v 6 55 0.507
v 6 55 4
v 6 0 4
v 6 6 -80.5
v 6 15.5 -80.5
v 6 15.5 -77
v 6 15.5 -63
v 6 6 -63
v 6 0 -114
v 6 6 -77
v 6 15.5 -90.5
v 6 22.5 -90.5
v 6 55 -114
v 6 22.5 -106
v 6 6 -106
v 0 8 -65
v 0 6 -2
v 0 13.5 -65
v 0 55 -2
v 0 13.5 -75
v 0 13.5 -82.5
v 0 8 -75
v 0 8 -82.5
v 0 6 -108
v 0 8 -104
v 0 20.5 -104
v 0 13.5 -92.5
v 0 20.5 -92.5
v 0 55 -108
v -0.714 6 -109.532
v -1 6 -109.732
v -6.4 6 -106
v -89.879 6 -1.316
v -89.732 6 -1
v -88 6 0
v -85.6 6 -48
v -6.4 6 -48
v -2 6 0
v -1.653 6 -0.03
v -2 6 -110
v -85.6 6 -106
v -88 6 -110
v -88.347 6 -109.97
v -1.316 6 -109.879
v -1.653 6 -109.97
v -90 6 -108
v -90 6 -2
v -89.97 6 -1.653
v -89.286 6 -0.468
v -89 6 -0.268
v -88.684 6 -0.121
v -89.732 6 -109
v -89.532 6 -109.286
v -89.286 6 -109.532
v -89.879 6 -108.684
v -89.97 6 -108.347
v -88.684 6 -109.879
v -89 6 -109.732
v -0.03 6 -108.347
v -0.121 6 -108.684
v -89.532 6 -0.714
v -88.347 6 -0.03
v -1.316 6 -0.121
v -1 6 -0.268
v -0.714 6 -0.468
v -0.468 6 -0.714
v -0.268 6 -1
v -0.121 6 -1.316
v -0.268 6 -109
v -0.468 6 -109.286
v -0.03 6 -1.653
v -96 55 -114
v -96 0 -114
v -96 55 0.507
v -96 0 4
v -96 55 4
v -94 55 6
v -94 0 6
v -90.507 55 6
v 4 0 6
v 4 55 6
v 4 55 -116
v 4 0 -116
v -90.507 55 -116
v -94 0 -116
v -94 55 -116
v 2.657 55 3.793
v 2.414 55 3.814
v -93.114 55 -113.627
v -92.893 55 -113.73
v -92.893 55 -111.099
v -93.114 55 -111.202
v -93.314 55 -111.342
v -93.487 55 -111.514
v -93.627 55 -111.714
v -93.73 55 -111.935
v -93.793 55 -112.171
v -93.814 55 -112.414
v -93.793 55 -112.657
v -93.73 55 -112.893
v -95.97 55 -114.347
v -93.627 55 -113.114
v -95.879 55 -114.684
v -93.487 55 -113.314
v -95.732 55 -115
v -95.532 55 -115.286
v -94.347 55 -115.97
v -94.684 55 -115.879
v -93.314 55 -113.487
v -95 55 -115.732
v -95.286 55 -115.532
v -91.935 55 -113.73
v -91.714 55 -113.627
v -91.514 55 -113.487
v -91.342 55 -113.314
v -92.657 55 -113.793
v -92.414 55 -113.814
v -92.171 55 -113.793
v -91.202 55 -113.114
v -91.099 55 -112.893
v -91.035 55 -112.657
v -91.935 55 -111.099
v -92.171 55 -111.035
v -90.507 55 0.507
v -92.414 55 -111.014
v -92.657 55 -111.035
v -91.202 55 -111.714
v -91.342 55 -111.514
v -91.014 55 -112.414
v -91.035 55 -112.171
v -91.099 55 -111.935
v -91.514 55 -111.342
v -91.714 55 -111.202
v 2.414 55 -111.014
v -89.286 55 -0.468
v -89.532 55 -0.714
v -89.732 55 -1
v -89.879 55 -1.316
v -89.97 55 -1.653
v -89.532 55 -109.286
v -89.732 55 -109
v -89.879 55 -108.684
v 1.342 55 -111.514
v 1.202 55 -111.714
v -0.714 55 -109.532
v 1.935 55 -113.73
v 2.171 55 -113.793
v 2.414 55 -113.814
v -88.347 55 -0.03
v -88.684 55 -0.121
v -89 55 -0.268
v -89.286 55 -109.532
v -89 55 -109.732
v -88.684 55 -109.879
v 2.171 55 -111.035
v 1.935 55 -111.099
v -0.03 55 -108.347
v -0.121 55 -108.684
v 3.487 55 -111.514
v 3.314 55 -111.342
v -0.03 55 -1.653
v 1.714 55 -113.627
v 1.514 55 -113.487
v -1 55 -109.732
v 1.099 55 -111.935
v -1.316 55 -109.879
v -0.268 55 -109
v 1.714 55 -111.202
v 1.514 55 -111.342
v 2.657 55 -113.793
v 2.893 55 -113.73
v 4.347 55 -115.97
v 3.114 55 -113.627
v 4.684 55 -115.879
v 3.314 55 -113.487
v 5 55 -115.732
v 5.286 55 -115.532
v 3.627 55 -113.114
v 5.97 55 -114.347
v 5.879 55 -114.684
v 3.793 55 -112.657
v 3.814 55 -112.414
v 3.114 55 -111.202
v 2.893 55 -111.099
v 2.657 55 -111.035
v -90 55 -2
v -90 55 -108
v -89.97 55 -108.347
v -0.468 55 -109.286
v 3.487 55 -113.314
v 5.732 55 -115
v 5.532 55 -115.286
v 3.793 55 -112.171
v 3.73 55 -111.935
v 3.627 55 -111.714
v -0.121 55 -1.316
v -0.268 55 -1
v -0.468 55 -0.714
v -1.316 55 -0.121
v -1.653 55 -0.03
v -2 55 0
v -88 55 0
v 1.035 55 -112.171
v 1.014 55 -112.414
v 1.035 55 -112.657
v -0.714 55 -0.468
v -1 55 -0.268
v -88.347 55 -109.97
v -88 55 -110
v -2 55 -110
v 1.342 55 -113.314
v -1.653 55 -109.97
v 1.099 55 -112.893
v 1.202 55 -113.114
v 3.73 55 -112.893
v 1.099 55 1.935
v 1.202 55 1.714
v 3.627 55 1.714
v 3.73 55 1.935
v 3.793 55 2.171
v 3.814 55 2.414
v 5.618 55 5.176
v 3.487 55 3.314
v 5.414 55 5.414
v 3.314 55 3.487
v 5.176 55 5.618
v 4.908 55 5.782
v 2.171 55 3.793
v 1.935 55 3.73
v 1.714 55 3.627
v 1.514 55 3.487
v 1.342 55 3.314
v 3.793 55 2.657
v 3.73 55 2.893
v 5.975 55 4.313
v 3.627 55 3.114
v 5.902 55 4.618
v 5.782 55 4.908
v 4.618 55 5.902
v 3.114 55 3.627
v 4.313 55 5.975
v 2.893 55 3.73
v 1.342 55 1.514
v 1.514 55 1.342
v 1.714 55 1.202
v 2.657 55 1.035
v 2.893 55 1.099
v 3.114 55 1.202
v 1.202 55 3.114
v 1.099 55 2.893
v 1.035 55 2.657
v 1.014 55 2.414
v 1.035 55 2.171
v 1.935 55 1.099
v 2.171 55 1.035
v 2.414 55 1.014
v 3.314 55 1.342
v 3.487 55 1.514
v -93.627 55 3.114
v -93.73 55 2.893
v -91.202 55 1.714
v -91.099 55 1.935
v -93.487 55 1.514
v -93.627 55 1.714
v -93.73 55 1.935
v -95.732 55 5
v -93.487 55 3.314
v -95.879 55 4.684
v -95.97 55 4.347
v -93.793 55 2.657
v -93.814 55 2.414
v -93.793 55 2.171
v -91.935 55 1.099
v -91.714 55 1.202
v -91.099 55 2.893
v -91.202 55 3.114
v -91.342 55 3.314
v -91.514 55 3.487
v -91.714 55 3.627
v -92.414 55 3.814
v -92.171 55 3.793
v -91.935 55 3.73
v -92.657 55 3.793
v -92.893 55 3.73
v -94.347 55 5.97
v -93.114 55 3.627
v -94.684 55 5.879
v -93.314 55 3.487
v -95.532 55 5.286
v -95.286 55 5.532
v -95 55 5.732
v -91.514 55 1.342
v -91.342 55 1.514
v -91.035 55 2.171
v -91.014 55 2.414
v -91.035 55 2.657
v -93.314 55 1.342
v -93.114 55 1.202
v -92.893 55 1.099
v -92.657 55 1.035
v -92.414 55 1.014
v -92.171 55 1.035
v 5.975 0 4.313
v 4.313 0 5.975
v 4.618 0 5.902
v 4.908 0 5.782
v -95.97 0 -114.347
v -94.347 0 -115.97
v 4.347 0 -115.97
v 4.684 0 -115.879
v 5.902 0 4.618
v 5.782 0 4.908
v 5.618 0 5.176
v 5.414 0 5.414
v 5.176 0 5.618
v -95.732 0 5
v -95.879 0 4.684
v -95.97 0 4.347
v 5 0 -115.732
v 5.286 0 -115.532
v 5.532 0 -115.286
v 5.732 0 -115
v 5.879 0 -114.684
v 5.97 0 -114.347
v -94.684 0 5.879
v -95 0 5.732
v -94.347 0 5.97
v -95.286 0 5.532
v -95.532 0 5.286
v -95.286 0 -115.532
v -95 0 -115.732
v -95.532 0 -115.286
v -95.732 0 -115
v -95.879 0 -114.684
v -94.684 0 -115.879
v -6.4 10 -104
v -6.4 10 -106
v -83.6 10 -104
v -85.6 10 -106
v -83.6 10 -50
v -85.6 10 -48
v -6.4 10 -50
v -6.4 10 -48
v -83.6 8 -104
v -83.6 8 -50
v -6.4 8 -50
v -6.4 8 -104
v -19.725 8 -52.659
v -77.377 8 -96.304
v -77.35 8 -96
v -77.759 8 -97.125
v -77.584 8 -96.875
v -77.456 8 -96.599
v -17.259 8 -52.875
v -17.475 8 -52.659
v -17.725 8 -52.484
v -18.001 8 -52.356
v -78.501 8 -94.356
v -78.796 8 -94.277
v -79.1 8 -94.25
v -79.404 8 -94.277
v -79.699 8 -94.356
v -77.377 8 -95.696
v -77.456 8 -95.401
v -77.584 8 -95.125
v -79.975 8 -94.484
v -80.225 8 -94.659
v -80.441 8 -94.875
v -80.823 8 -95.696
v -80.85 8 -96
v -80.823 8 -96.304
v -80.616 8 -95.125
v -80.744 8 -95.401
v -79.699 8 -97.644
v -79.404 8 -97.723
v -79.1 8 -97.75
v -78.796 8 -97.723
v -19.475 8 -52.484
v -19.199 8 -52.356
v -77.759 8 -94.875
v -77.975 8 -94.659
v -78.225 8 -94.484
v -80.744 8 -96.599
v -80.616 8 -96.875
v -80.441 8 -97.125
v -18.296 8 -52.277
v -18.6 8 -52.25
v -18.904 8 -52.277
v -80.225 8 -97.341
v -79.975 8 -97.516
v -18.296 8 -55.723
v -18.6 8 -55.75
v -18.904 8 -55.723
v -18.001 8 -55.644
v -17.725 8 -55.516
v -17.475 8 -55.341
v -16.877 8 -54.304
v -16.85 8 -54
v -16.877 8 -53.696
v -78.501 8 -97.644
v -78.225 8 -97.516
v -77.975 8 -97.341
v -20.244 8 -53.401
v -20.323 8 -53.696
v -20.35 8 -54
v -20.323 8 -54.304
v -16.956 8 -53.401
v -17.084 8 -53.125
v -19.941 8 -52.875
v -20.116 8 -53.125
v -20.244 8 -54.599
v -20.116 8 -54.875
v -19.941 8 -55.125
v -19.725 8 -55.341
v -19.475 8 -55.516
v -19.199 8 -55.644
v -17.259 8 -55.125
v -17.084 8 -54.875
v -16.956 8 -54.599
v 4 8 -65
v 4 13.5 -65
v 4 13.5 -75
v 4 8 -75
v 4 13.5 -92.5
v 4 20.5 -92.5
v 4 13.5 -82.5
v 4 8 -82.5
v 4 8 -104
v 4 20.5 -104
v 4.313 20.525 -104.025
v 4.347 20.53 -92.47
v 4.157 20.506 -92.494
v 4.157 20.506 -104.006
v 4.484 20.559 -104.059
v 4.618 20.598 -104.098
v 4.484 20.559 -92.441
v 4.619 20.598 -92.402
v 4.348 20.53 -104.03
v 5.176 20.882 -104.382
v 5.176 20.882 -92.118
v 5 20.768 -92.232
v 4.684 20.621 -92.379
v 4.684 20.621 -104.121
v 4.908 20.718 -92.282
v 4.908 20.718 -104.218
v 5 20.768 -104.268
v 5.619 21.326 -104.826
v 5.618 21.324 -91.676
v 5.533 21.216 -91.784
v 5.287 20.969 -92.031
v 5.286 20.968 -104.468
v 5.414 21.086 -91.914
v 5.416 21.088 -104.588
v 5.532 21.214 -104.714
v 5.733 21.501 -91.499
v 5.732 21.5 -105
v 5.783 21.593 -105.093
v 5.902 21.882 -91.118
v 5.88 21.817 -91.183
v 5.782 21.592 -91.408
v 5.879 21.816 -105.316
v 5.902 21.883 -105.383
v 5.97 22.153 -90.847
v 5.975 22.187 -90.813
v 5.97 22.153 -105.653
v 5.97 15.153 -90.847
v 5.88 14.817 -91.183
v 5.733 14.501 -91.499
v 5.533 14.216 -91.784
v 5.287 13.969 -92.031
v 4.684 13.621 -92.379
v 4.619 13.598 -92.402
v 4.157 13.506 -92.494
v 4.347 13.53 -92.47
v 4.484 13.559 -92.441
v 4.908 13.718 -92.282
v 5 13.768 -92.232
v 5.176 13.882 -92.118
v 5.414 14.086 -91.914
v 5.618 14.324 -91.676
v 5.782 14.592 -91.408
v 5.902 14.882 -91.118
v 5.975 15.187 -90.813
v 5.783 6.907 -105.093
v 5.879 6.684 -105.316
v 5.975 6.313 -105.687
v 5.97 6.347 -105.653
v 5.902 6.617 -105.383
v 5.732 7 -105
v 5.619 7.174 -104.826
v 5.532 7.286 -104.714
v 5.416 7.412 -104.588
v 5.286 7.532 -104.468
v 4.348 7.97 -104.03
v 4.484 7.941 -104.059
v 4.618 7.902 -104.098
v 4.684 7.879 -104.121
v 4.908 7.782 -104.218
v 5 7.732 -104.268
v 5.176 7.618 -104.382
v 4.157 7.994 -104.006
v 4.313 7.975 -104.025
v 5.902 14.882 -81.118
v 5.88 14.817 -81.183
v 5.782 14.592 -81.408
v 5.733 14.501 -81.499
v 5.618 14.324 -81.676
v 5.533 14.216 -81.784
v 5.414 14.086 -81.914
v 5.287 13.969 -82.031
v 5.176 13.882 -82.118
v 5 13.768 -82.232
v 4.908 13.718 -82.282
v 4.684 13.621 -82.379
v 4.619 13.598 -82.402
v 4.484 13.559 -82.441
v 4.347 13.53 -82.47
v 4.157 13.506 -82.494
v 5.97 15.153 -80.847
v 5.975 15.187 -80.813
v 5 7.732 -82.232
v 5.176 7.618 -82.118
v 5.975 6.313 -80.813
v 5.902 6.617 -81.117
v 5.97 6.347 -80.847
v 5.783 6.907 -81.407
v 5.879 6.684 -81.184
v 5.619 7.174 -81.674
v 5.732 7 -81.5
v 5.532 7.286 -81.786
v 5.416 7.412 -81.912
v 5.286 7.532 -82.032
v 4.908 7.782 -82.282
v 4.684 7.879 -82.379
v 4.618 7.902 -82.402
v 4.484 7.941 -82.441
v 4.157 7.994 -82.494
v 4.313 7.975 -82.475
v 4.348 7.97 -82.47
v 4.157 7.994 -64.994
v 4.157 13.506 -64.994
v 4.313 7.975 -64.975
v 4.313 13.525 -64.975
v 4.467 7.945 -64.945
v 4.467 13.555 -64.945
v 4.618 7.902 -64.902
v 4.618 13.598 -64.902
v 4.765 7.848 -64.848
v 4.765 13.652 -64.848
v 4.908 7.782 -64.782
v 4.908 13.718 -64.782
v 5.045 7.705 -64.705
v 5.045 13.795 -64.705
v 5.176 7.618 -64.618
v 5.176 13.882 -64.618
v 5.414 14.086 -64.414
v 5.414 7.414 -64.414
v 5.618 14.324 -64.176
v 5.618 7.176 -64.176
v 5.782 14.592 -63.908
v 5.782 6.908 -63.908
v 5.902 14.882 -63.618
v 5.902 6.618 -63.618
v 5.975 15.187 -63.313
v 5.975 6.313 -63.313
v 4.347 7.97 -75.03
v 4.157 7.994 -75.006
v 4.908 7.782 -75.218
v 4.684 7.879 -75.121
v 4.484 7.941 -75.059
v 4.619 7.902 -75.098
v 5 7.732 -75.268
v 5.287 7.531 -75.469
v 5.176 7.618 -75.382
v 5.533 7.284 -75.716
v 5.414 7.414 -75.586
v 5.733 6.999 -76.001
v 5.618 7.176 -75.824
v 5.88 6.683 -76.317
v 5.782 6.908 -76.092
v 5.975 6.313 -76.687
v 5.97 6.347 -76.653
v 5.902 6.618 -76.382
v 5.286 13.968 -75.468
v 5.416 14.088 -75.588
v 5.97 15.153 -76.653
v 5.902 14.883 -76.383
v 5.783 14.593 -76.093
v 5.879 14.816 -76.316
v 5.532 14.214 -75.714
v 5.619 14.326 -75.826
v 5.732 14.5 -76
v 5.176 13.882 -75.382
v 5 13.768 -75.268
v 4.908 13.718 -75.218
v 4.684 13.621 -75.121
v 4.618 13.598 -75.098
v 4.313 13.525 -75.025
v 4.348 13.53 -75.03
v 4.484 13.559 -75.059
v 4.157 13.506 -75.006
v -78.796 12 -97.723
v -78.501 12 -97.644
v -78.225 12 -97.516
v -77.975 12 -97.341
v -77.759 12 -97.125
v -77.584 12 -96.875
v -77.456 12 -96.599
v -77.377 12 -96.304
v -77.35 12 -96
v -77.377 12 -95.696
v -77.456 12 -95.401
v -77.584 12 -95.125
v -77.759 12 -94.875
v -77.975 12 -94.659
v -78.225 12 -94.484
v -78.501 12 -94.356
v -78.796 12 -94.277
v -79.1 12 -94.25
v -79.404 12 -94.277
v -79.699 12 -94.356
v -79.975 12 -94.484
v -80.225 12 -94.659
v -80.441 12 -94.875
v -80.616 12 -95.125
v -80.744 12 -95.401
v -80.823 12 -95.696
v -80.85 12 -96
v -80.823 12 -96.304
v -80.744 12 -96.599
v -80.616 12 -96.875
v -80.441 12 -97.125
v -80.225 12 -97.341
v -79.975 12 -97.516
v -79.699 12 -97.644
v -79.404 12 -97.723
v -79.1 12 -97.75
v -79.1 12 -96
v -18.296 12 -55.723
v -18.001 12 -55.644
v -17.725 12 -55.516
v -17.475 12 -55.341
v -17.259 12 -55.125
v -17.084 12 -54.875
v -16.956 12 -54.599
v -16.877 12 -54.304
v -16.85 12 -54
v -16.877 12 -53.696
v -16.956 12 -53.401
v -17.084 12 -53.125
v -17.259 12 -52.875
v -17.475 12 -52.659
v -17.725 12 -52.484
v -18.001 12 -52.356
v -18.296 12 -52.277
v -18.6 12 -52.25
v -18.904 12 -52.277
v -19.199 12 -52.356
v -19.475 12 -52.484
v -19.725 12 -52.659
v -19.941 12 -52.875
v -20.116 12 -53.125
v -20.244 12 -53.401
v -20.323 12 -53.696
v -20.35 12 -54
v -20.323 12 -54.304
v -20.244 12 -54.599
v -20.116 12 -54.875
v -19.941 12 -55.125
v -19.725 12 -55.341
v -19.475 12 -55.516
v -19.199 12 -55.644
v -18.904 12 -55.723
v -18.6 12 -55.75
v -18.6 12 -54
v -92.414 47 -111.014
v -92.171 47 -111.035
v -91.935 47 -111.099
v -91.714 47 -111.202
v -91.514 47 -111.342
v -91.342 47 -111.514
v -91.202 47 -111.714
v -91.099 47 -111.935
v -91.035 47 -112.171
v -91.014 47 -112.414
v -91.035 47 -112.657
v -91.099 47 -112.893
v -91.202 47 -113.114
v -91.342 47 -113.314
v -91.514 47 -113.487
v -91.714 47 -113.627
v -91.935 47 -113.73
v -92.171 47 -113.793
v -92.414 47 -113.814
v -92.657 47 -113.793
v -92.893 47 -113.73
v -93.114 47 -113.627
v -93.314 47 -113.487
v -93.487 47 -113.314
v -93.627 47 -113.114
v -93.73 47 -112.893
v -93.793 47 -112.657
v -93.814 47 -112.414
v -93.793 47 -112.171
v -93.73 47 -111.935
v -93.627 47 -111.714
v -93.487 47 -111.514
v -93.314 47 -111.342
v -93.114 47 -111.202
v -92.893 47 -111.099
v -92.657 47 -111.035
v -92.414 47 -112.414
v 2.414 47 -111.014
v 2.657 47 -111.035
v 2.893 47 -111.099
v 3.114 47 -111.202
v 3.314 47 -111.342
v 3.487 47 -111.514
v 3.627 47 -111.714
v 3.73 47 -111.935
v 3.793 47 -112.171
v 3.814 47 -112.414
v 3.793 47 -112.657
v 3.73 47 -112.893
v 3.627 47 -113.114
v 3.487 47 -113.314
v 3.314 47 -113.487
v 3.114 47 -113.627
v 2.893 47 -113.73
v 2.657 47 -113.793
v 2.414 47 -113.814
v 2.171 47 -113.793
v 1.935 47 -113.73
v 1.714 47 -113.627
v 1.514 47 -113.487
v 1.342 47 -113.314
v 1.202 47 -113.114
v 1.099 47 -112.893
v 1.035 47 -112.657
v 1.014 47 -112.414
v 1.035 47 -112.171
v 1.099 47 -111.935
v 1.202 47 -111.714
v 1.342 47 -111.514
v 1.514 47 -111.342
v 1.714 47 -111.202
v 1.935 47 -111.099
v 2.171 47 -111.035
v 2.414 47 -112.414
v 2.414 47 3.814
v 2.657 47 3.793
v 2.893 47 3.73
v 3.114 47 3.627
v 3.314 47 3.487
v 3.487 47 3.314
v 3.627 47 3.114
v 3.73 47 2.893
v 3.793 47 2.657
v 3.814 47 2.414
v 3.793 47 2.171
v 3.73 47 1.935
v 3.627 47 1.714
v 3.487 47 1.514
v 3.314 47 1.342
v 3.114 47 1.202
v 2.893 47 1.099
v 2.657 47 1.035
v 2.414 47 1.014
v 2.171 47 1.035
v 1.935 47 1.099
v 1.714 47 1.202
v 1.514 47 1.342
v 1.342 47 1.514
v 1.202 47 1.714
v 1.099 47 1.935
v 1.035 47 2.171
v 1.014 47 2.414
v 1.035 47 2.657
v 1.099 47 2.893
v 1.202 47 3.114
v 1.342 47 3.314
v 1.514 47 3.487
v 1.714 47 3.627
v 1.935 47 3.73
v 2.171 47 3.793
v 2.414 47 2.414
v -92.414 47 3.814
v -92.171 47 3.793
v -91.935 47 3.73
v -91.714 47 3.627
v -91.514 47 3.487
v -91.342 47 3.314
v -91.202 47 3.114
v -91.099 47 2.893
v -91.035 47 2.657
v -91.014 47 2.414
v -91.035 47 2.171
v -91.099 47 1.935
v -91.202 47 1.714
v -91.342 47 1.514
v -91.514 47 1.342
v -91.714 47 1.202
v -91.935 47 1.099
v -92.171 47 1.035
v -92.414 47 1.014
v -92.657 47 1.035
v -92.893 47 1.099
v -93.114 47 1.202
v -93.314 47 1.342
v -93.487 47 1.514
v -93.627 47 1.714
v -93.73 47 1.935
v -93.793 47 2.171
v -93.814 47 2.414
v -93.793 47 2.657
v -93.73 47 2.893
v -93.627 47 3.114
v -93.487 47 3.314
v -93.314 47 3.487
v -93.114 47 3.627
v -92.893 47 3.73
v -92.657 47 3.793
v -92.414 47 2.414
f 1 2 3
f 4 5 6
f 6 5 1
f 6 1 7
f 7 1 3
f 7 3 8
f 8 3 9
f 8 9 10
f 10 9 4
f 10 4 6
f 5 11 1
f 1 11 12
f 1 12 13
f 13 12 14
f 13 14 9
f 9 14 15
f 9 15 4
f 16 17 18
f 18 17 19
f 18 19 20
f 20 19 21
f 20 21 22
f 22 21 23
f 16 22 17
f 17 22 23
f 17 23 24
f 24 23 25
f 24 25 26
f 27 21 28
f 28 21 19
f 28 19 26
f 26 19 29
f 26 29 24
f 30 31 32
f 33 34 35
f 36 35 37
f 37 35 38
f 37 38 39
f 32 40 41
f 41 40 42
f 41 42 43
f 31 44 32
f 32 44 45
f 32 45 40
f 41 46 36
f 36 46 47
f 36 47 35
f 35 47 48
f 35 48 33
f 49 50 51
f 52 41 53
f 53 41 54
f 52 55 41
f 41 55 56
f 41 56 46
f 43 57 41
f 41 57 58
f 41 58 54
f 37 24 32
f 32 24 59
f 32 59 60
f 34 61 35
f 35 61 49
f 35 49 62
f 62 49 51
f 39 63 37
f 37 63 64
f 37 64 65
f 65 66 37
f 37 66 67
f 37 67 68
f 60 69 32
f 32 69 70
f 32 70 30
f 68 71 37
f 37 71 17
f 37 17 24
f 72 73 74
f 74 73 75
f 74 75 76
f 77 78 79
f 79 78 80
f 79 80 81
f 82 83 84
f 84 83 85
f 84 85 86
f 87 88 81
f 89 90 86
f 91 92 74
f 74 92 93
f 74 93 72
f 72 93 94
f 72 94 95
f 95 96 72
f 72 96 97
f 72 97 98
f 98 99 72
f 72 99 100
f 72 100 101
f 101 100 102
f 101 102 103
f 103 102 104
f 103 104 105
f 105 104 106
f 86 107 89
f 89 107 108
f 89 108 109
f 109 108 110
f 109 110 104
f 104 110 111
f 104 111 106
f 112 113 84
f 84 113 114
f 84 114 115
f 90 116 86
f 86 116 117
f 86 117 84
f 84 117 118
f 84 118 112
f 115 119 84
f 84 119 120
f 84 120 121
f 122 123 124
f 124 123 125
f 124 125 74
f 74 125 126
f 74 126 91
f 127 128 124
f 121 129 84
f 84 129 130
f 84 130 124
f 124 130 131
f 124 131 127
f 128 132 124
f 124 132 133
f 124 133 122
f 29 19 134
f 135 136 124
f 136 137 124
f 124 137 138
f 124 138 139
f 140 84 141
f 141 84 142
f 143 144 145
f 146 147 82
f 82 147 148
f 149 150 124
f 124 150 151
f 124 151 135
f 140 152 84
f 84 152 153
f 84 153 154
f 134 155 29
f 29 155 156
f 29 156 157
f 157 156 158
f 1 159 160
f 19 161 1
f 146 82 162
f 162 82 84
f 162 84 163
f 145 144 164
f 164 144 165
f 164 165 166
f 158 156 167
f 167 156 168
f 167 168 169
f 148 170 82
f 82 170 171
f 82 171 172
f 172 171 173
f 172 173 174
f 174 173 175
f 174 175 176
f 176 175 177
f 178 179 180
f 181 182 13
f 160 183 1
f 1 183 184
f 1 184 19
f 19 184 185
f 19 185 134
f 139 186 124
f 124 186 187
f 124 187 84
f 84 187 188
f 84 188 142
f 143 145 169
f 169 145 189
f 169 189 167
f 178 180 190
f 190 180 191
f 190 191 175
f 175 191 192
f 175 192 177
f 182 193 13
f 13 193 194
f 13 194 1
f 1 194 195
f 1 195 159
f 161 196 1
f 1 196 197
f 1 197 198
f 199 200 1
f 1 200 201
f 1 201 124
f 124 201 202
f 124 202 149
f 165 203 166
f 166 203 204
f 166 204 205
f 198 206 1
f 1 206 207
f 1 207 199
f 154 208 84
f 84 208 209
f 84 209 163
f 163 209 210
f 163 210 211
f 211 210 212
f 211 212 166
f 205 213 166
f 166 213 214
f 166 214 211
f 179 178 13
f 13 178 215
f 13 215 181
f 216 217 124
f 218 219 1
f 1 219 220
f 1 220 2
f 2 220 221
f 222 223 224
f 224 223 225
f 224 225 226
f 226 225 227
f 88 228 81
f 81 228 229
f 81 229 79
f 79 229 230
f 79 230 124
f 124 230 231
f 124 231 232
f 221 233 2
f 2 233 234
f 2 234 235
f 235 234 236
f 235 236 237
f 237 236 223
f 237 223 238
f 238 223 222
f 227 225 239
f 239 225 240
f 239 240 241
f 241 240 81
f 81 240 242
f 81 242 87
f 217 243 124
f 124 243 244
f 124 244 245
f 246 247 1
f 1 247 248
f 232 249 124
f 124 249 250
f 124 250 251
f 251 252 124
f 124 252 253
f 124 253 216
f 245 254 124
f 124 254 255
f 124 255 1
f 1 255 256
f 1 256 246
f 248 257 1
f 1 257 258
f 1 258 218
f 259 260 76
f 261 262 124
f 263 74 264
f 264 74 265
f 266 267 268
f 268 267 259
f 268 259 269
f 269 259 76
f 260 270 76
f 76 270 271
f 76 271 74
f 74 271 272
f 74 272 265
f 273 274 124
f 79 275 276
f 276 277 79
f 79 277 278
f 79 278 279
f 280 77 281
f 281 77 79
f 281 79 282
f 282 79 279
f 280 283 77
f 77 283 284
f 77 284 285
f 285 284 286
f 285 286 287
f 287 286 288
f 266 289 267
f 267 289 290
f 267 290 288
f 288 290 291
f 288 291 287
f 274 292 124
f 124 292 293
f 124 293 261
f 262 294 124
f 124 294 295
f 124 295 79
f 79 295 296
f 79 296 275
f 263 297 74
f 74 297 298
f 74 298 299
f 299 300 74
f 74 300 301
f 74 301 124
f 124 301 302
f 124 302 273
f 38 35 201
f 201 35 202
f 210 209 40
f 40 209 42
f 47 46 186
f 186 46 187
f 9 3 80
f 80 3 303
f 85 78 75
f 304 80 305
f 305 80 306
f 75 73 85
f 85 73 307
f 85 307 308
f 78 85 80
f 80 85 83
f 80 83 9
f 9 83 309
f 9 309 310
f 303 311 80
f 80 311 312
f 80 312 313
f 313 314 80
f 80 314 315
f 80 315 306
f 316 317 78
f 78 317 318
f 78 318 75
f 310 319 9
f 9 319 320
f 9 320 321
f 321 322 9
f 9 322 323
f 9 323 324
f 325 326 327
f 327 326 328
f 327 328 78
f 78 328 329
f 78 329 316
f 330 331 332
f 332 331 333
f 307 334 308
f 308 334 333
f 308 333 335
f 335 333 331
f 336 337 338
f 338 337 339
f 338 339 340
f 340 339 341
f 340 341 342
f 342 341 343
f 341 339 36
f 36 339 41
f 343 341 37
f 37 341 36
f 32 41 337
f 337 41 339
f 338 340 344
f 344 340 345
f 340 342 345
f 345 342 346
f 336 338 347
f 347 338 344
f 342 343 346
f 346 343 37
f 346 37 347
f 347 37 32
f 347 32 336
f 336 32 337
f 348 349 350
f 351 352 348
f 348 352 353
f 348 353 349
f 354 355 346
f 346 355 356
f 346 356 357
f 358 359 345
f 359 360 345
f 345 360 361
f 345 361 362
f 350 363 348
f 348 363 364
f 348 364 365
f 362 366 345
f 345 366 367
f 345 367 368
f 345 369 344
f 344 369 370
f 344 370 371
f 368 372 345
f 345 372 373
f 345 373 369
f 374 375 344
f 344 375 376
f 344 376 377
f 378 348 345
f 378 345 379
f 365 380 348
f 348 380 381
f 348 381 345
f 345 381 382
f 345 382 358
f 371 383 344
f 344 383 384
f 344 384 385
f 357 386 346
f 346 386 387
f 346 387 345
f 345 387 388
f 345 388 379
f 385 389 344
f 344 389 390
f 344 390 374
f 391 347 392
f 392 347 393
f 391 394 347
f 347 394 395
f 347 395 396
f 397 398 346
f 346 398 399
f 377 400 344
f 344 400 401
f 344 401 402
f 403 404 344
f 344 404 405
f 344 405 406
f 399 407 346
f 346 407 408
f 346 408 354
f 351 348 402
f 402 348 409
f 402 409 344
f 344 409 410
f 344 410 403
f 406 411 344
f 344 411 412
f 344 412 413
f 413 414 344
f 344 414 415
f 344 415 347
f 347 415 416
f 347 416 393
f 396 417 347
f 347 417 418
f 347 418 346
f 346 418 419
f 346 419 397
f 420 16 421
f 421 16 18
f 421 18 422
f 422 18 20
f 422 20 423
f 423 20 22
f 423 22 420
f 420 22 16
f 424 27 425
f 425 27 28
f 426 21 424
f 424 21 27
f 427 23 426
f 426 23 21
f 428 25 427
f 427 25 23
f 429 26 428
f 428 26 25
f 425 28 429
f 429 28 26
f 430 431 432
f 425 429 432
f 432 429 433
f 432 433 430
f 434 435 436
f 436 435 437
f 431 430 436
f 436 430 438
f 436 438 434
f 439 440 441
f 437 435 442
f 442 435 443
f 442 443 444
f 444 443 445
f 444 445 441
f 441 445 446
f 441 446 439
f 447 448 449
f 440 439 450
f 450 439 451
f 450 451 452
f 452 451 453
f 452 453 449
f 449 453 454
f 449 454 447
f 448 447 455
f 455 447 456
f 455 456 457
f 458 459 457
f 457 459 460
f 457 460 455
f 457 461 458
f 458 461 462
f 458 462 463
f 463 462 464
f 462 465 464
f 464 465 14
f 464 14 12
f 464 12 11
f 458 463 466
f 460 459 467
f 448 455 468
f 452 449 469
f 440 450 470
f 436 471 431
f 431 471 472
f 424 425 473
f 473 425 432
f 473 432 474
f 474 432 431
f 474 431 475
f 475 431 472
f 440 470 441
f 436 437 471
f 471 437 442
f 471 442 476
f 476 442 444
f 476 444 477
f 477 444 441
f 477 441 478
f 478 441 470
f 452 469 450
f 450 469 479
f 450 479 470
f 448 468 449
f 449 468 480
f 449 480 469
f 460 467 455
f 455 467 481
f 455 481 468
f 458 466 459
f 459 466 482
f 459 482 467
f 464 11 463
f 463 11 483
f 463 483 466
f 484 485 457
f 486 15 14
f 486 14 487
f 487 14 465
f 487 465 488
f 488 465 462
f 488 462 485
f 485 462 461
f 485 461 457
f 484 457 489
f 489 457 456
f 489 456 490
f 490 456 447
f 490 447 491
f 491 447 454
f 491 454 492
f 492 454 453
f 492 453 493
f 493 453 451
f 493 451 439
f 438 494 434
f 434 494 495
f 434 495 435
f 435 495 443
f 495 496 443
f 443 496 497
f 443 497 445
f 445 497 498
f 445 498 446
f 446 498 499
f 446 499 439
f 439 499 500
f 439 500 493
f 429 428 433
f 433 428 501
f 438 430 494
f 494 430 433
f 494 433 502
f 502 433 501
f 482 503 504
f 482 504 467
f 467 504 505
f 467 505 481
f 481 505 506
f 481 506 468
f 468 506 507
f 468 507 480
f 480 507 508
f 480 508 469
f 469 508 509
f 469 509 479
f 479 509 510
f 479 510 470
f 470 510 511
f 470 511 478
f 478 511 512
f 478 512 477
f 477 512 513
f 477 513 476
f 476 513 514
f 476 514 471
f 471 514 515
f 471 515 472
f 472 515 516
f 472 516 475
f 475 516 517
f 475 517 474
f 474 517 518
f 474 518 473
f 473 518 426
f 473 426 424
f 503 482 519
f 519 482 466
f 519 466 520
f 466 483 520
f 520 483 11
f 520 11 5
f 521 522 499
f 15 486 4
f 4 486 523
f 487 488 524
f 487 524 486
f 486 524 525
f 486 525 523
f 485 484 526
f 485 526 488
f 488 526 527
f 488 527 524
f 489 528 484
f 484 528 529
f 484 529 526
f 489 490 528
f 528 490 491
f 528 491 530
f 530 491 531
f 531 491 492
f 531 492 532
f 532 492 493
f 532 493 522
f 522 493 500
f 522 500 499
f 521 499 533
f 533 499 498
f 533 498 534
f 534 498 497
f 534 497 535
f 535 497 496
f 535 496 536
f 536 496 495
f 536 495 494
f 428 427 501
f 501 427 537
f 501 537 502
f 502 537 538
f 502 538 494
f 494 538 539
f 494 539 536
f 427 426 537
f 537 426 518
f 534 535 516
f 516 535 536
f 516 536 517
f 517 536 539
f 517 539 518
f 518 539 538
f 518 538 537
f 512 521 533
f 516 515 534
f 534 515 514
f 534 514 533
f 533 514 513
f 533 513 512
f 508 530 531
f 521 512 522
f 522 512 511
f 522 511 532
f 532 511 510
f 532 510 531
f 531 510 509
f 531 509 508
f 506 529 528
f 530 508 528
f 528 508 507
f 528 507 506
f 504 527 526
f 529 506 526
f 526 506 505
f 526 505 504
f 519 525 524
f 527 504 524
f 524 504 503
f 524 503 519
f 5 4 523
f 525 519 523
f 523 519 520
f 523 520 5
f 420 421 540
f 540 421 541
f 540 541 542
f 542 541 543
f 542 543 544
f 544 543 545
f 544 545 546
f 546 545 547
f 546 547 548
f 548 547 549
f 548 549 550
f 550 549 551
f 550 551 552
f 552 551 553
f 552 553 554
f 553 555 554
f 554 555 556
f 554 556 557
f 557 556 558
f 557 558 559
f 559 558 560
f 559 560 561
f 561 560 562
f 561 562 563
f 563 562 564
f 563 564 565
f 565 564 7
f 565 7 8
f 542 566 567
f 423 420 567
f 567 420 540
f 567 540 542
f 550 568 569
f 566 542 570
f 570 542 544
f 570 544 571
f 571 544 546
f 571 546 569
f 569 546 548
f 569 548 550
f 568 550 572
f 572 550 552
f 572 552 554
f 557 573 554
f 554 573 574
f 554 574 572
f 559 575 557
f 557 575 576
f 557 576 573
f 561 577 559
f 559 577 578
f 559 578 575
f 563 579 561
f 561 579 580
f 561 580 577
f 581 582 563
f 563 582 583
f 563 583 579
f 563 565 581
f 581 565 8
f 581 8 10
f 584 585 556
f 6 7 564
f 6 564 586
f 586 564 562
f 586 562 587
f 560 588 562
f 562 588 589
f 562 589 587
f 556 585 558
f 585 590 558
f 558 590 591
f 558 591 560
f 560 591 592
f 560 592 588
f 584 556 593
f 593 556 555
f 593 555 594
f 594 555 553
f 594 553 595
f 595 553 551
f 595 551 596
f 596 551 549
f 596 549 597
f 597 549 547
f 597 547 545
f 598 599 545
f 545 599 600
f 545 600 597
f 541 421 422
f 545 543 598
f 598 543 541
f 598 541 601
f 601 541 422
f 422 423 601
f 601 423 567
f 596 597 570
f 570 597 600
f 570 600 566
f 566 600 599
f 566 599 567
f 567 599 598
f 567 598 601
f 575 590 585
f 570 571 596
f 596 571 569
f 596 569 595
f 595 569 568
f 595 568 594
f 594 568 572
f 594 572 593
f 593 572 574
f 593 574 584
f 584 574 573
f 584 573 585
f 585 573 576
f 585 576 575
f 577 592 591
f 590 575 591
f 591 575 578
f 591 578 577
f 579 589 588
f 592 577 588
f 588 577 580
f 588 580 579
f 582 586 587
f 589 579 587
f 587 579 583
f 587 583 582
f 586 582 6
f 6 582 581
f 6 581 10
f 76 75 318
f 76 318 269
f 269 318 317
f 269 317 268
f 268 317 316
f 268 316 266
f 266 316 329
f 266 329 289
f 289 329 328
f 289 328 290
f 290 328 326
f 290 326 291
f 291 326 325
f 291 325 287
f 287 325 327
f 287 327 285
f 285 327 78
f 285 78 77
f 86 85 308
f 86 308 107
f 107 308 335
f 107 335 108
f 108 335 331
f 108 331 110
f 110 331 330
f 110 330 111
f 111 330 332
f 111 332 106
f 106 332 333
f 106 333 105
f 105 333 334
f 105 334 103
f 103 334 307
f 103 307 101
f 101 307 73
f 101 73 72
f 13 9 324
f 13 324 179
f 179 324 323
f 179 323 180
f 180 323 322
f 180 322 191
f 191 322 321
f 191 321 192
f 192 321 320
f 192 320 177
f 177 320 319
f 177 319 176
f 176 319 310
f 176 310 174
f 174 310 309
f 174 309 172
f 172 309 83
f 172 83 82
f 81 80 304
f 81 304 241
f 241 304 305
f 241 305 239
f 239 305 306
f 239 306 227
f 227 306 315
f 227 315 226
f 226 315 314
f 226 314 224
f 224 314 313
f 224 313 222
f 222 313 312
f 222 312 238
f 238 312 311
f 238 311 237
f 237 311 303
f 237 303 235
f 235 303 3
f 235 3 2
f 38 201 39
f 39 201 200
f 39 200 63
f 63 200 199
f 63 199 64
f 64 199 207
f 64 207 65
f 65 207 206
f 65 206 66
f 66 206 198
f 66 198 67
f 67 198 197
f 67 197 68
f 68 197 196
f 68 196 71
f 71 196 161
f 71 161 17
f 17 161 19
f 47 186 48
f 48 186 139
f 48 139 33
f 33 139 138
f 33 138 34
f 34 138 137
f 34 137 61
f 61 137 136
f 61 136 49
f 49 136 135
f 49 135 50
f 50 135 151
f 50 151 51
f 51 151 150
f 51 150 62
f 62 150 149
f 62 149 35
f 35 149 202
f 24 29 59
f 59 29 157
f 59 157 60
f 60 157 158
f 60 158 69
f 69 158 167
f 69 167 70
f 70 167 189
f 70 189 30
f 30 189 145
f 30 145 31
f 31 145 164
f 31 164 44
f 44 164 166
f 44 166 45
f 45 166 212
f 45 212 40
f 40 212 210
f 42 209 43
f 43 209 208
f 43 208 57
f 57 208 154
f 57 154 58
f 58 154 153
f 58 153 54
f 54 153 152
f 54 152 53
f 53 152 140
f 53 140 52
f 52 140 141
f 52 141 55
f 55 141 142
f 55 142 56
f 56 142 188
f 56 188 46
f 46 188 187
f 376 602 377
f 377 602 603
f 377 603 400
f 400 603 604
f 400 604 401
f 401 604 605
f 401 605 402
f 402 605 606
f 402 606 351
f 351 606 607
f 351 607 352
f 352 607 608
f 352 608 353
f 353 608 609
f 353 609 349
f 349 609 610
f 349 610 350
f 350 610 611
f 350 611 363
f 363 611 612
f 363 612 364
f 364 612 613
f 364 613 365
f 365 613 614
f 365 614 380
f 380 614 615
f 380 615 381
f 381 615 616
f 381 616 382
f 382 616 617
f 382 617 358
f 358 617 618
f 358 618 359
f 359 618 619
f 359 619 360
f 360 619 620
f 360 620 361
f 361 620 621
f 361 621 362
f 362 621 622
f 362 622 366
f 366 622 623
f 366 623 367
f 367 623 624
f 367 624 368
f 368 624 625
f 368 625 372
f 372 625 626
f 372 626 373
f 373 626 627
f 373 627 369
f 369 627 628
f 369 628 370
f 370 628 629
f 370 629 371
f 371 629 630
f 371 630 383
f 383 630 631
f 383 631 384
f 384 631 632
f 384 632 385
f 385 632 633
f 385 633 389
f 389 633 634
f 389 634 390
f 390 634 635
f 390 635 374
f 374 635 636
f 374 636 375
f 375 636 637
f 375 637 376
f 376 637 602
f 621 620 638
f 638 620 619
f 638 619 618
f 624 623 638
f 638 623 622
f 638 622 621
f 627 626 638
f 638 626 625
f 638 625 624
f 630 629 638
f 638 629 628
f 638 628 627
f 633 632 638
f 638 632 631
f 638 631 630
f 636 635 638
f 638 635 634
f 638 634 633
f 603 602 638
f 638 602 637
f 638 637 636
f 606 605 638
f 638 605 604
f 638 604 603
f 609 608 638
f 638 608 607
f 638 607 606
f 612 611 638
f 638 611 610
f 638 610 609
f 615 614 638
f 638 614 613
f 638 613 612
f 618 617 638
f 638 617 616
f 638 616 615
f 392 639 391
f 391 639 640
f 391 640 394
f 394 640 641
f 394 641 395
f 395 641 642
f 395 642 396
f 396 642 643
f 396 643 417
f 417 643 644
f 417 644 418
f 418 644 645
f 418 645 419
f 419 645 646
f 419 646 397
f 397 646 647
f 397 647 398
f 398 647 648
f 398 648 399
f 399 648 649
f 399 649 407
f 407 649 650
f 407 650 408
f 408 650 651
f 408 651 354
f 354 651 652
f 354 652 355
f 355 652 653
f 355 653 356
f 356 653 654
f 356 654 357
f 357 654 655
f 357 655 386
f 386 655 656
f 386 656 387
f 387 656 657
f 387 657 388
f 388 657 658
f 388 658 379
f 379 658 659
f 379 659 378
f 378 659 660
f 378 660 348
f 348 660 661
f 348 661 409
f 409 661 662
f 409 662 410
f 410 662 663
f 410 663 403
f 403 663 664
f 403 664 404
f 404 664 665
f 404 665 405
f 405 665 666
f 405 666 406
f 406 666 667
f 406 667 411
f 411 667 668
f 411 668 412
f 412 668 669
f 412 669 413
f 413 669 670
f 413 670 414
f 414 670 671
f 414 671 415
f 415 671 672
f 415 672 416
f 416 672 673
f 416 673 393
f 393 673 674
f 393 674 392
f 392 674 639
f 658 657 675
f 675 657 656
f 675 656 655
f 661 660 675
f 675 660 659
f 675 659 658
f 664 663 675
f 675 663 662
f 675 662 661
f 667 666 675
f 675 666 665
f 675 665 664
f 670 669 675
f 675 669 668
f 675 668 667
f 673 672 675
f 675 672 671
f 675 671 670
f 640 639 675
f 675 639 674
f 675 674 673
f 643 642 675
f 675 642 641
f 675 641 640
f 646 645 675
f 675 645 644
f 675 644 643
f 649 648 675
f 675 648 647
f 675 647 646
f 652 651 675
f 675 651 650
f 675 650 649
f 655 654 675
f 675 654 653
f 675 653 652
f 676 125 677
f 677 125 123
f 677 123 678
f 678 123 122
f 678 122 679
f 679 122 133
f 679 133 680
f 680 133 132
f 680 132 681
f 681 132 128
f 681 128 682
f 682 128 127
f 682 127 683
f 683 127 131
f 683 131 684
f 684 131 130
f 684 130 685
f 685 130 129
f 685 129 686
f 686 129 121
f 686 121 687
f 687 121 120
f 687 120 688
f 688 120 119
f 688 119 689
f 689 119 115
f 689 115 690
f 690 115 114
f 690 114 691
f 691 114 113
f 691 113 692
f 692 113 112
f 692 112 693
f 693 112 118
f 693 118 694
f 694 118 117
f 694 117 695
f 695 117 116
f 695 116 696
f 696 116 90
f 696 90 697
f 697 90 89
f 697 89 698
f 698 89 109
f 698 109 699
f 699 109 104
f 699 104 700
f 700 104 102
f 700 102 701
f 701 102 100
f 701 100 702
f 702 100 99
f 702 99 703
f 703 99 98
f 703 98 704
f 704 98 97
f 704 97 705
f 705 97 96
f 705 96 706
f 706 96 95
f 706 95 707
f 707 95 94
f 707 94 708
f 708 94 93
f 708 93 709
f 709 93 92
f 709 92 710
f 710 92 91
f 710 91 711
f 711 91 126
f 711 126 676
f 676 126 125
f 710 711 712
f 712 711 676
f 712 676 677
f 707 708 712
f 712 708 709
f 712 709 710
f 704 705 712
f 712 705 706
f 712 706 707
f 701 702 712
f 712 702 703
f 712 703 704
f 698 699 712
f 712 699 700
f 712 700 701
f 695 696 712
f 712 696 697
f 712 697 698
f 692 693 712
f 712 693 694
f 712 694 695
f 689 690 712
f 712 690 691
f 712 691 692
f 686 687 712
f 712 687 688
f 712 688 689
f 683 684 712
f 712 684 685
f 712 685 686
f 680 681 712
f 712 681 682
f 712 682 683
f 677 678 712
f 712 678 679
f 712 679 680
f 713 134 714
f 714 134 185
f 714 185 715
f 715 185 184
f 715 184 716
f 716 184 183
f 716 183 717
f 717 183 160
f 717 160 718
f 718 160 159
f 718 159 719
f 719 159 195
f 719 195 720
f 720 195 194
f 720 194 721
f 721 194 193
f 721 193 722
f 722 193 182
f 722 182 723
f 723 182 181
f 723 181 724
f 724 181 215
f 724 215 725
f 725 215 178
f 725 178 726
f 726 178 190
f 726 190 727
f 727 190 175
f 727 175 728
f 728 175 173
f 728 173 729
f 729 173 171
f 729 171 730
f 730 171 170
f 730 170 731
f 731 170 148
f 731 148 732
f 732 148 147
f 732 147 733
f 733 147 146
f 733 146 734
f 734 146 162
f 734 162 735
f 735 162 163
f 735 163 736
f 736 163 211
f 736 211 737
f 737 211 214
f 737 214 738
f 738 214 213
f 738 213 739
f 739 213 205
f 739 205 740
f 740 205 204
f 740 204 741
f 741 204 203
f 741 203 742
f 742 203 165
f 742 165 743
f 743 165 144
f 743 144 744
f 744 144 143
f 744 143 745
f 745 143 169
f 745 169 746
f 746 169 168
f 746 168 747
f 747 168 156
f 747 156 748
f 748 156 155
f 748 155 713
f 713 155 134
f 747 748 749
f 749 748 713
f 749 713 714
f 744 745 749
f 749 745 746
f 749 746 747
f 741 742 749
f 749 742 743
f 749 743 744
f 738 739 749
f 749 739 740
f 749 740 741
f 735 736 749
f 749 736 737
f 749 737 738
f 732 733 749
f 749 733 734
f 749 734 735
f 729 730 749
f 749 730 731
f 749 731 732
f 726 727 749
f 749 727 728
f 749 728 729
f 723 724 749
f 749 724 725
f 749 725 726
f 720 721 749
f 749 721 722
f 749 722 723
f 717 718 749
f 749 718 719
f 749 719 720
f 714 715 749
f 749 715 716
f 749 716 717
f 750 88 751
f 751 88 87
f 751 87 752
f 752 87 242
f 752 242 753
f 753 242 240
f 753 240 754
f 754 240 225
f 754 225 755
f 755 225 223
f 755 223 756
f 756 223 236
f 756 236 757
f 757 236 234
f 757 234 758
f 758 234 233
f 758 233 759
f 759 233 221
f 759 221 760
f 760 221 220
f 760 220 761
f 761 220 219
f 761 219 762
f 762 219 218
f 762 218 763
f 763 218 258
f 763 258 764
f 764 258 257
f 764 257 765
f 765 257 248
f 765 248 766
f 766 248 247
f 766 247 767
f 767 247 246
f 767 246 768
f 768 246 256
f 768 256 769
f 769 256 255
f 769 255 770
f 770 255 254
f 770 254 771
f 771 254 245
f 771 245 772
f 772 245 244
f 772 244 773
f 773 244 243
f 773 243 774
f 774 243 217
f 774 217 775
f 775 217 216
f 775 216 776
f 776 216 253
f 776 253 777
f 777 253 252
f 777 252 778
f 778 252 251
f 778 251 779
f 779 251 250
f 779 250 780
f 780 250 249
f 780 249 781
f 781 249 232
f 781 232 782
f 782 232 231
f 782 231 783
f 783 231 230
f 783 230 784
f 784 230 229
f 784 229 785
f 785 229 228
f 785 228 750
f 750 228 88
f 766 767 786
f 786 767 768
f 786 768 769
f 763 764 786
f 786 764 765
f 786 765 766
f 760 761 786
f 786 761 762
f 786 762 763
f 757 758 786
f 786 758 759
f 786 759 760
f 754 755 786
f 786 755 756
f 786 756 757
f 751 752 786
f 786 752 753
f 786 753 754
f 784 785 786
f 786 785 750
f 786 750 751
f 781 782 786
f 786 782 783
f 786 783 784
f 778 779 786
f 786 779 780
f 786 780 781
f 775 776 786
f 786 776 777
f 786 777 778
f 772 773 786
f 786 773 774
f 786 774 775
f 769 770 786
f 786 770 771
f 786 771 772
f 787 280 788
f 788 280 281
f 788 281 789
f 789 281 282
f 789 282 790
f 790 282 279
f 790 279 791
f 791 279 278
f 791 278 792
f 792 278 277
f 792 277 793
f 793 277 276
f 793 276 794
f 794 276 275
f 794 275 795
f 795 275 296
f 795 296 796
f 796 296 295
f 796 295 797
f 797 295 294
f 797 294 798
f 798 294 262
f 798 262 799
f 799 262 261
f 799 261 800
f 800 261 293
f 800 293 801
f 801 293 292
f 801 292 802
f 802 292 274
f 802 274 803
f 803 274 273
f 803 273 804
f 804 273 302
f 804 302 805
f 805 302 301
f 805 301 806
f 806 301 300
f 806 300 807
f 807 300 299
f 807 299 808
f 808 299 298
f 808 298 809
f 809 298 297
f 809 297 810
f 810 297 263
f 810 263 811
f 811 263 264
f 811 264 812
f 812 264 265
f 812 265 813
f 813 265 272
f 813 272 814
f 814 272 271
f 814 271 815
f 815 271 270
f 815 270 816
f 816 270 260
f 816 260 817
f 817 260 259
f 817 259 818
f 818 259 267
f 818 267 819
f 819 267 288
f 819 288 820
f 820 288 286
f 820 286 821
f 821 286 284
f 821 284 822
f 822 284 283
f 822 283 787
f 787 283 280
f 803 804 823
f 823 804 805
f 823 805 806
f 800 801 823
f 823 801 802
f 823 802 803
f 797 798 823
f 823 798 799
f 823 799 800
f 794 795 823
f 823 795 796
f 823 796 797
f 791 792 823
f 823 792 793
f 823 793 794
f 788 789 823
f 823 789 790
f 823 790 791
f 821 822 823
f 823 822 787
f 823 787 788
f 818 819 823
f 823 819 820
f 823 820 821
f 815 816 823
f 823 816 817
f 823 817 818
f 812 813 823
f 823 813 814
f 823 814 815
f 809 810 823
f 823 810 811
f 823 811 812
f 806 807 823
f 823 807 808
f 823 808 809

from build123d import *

# Parameters (mm, degrees)
SKETCH1_W               = 90
SKETCH1_H               = 110
BOSS_EXTRUDE2_DEPTH     = 6
SKETCH4_W               = 102
SKETCH4_H               = 122
SKETCH4_W_2             = 90
SKETCH4_H_2             = 110
BOSS_EXTRUDE3_DEPTH     = 55
SKETCH6_W               = 81.2
SKETCH6_H               = 58
SKETCH6_W_2             = 77.2
SKETCH6_H_2             = 54
BOSS_EXTRUDE4_DEPTH     = 4
CUT_EXTRUDE1_DEPTH      = 4
SKETCH12_W              = 77.2
SKETCH12_H              = 54
BOSS_EXTRUDE5_DEPTH     = 2
CUT_EXTRUDE2_REACH      = 165.966
FILLET1_R               = 2
FILLET2_R               = 2
FILLET3_R               = 2
BOSS_EXTRUDE7_DEPTH     = 4
SKETCH14_R              = 1.4
CUT_EXTRUDE3_DEPTH      = 8
MIRROR2_COPY_1_SKETCH_R = 1.4
MIRROR2_COPY_1_DEPTH    = 8


with BuildPart() as part:
    # Sketch1 → Boss-Extrude2 (new body)
    with BuildSketch(Plane(origin=(0, 0, 0), x_dir=(1, 0, 0), z_dir=(0, 1, 0))):
        with Locations((-45, 55)):
            Rectangle(SKETCH1_W, SKETCH1_H)
    extrude(amount=BOSS_EXTRUDE2_DEPTH)

    # Sketch4 → Boss-Extrude3 (add)
    with BuildSketch(Plane.XZ):
        with Locations((-45, -55)):
            Rectangle(SKETCH4_W, SKETCH4_H)
        with Locations((-45, -55)):
            Rectangle(SKETCH4_W_2, SKETCH4_H_2, mode=Mode.SUBTRACT)
    extrude(amount=-BOSS_EXTRUDE3_DEPTH)

    # Sketch6 → Boss-Extrude4 (add)
    with BuildSketch(Plane(origin=(0, 6, 0), x_dir=(1, 0, 0), z_dir=(0, 1, 0))):
        with Locations((-45, 77)):
            Rectangle(SKETCH6_W, SKETCH6_H)
        with Locations((-45, 77)):
            Rectangle(SKETCH6_W_2, SKETCH6_H_2, mode=Mode.SUBTRACT)
    extrude(amount=BOSS_EXTRUDE4_DEPTH)

    # Sketch11 → Cut-Extrude1 (cut)
    with BuildSketch(Plane(origin=(0, 10, 0), x_dir=(1, 0, 0), z_dir=(0, 1, 0))):
        Polygon((-6.4, 106), (-6.4, 104), (-6.4, 50), (-6.4, 48), (-4.4, 48), (-4.4, 106), align=None)
    extrude(amount=-CUT_EXTRUDE1_DEPTH, mode=Mode.SUBTRACT)

    # Sketch12 → Boss-Extrude5 (add)
    with BuildSketch(Plane(origin=(0, 6, 0), x_dir=(1, 0, 0), z_dir=(0, 1, 0))):
        with Locations((-45, 77)):
            Rectangle(SKETCH12_W, SKETCH12_H)
    extrude(amount=BOSS_EXTRUDE5_DEPTH)

    # Sketch10 → Cut-Extrude2 (cut, up to next)
    with BuildSketch(Plane(origin=(6, 0, 0), x_dir=(0, 0, -1), z_dir=(1, 0, 0)), mode=Mode.PRIVATE) as cut_extrude2_sk1:
        Polygon((92.5, 8), (104, 8), (104, 20.5), (92.5, 20.5), (92.5, 13.5), align=None)
    cut_extrude2_tool1 = extrude(cut_extrude2_sk1.sketch, amount=-CUT_EXTRUDE2_REACH, mode=Mode.PRIVATE) & part.part
    # Sketch10 → Cut-Extrude2 (cut, up to next)
    with BuildSketch(Plane(origin=(6, 0, 0), x_dir=(0, 0, -1), z_dir=(1, 0, 0)), mode=Mode.PRIVATE) as cut_extrude2_sk2:
        Polygon((82.5, 8), (92.5, 8), (92.5, 13.5), (82.5, 13.5), (82.5, 11.241721358), align=None)
    cut_extrude2_tool2 = extrude(cut_extrude2_sk2.sketch, amount=-CUT_EXTRUDE2_REACH, mode=Mode.PRIVATE) & part.part
    # Sketch10 → Cut-Extrude2 (cut, up to next)
    with BuildSketch(Plane(origin=(6, 0, 0), x_dir=(0, 0, -1), z_dir=(1, 0, 0)), mode=Mode.PRIVATE) as cut_extrude2_sk3:
        Polygon((65, 13.5), (65, 8), (75, 8), (75, 11.241721358), (75, 13.5), align=None)
    cut_extrude2_tool3 = extrude(cut_extrude2_sk3.sketch, amount=-CUT_EXTRUDE2_REACH, mode=Mode.PRIVATE) & part.part
    add(cut_extrude2_tool1.solids().sort_by_distance((6, 14.25, -98.25))[0], mode=Mode.SUBTRACT)
    add(cut_extrude2_tool2.solids().sort_by_distance((6, 10.75, -87.5))[0], mode=Mode.SUBTRACT)
    add(cut_extrude2_tool3.solids().sort_by_distance((6, 10.75, -70))[0], mode=Mode.SUBTRACT)

    # Fillet1
    fillet1_edges = [part.edges().sort_by_distance(p)[0] for p in [
        (6, 17, -92.5),
        (6, 13.5, -87.5),
        (6, 10.75, -82.5),
        (6, 8, -93.25),
        (6, 14.25, -104),
        (6, 20.5, -98.25),
        (6, 10.75, -65),
        (6, 8, -70),
        (6, 10.75, -75),
        (6, 13.5, -70),
    ]]
    fillet(fillet1_edges, radius=FILLET1_R)

    # Fillet2
    fillet2_edges = [part.edges().sort_by_distance(p)[0] for p in [
        (-96, 27.5, -116),
        (-96, 27.5, 6),
        (6, 27.5, 6),
        (6, 27.5, -116),
    ]]
    fillet(fillet2_edges, radius=FILLET2_R)

    # Fillet3
    fillet3_edges = [part.edges().sort_by_distance(p)[0] for p in [
        (0, 30.5, 0),
        (0, 30.5, -110),
        (-90, 30.5, -110),
        (-90, 30.5, 0),
    ]]
    fillet(fillet3_edges, radius=FILLET3_R)

    # Sketch13 → Boss-Extrude7 (add)
    with BuildSketch(Plane(origin=(0, 8, 0), x_dir=(1, 0, 0), z_dir=(0, 1, 0))):
        with BuildLine():
            ThreePointArc((-77.35, 96), (-77.862563133, 97.237436867), (-79.1, 97.75))
            Line((-79.1, 97.75), (-79.1, 96))
            Line((-79.1, 96), (-80.85, 96))
            ThreePointArc((-80.85, 96), (-79.1, 94.25), (-77.35, 96))
        make_face()
        with BuildLine():
            Line((-79.1, 96), (-79.1, 97.75))
            ThreePointArc((-79.1, 97.75), (-80.337436867, 97.237436867), (-80.85, 96))
            Line((-80.85, 96), (-79.1, 96))
        make_face()
        with BuildLine():
            ThreePointArc((-18.6, 52.25), (-17.362563133, 52.762563133), (-16.85, 54))
            Line((-16.85, 54), (-18.6, 54))
            Line((-18.6, 54), (-18.6, 52.25))
        make_face()
        with BuildLine():
            Line((-18.6, 54), (-16.85, 54))
            ThreePointArc((-16.85, 54), (-19.837436867, 55.237436867), (-18.6, 52.25))
            Line((-18.6, 52.25), (-18.6, 54))
        make_face()
    extrude(amount=BOSS_EXTRUDE7_DEPTH)

    # Sketch14 → Cut-Extrude3 (cut)
    with BuildSketch(Plane(origin=(0, 55, 0), x_dir=(1, 0, 0), z_dir=(0, 1, 0))):
        with Locations(Location((-92.414213562, 112.414213562, 0), (0, 0, 270))):
            Circle(SKETCH14_R)
    cut_extrude3 = extrude(amount=-CUT_EXTRUDE3_DEPTH, mode=Mode.SUBTRACT)

    # Mirror1: Cut-Extrude3 across plane
    add(cut_extrude3.mirror(Plane.ZY.offset(45)), mode=Mode.SUBTRACT)

    # Mirror2: Cut-Extrude3 across plane
    add(cut_extrude3.mirror(Plane(origin=(0, 0, -55), x_dir=(1, 0, 0), z_dir=(0, 0, -1))), mode=Mode.SUBTRACT)

    # Mirror2 copy 1 sketch → Mirror2 copy 1 (cut)
    with BuildSketch(Plane(origin=(-90, 55, -110), x_dir=(-1, 0, 0), z_dir=(0, 1, 0))):
        with Locations(Location((-92.414213562, 112.414213562, 0), (0, 0, 270))):
            Circle(MIRROR2_COPY_1_SKETCH_R)
    extrude(amount=-MIRROR2_COPY_1_DEPTH, mode=Mode.SUBTRACT)


solid = part.part
